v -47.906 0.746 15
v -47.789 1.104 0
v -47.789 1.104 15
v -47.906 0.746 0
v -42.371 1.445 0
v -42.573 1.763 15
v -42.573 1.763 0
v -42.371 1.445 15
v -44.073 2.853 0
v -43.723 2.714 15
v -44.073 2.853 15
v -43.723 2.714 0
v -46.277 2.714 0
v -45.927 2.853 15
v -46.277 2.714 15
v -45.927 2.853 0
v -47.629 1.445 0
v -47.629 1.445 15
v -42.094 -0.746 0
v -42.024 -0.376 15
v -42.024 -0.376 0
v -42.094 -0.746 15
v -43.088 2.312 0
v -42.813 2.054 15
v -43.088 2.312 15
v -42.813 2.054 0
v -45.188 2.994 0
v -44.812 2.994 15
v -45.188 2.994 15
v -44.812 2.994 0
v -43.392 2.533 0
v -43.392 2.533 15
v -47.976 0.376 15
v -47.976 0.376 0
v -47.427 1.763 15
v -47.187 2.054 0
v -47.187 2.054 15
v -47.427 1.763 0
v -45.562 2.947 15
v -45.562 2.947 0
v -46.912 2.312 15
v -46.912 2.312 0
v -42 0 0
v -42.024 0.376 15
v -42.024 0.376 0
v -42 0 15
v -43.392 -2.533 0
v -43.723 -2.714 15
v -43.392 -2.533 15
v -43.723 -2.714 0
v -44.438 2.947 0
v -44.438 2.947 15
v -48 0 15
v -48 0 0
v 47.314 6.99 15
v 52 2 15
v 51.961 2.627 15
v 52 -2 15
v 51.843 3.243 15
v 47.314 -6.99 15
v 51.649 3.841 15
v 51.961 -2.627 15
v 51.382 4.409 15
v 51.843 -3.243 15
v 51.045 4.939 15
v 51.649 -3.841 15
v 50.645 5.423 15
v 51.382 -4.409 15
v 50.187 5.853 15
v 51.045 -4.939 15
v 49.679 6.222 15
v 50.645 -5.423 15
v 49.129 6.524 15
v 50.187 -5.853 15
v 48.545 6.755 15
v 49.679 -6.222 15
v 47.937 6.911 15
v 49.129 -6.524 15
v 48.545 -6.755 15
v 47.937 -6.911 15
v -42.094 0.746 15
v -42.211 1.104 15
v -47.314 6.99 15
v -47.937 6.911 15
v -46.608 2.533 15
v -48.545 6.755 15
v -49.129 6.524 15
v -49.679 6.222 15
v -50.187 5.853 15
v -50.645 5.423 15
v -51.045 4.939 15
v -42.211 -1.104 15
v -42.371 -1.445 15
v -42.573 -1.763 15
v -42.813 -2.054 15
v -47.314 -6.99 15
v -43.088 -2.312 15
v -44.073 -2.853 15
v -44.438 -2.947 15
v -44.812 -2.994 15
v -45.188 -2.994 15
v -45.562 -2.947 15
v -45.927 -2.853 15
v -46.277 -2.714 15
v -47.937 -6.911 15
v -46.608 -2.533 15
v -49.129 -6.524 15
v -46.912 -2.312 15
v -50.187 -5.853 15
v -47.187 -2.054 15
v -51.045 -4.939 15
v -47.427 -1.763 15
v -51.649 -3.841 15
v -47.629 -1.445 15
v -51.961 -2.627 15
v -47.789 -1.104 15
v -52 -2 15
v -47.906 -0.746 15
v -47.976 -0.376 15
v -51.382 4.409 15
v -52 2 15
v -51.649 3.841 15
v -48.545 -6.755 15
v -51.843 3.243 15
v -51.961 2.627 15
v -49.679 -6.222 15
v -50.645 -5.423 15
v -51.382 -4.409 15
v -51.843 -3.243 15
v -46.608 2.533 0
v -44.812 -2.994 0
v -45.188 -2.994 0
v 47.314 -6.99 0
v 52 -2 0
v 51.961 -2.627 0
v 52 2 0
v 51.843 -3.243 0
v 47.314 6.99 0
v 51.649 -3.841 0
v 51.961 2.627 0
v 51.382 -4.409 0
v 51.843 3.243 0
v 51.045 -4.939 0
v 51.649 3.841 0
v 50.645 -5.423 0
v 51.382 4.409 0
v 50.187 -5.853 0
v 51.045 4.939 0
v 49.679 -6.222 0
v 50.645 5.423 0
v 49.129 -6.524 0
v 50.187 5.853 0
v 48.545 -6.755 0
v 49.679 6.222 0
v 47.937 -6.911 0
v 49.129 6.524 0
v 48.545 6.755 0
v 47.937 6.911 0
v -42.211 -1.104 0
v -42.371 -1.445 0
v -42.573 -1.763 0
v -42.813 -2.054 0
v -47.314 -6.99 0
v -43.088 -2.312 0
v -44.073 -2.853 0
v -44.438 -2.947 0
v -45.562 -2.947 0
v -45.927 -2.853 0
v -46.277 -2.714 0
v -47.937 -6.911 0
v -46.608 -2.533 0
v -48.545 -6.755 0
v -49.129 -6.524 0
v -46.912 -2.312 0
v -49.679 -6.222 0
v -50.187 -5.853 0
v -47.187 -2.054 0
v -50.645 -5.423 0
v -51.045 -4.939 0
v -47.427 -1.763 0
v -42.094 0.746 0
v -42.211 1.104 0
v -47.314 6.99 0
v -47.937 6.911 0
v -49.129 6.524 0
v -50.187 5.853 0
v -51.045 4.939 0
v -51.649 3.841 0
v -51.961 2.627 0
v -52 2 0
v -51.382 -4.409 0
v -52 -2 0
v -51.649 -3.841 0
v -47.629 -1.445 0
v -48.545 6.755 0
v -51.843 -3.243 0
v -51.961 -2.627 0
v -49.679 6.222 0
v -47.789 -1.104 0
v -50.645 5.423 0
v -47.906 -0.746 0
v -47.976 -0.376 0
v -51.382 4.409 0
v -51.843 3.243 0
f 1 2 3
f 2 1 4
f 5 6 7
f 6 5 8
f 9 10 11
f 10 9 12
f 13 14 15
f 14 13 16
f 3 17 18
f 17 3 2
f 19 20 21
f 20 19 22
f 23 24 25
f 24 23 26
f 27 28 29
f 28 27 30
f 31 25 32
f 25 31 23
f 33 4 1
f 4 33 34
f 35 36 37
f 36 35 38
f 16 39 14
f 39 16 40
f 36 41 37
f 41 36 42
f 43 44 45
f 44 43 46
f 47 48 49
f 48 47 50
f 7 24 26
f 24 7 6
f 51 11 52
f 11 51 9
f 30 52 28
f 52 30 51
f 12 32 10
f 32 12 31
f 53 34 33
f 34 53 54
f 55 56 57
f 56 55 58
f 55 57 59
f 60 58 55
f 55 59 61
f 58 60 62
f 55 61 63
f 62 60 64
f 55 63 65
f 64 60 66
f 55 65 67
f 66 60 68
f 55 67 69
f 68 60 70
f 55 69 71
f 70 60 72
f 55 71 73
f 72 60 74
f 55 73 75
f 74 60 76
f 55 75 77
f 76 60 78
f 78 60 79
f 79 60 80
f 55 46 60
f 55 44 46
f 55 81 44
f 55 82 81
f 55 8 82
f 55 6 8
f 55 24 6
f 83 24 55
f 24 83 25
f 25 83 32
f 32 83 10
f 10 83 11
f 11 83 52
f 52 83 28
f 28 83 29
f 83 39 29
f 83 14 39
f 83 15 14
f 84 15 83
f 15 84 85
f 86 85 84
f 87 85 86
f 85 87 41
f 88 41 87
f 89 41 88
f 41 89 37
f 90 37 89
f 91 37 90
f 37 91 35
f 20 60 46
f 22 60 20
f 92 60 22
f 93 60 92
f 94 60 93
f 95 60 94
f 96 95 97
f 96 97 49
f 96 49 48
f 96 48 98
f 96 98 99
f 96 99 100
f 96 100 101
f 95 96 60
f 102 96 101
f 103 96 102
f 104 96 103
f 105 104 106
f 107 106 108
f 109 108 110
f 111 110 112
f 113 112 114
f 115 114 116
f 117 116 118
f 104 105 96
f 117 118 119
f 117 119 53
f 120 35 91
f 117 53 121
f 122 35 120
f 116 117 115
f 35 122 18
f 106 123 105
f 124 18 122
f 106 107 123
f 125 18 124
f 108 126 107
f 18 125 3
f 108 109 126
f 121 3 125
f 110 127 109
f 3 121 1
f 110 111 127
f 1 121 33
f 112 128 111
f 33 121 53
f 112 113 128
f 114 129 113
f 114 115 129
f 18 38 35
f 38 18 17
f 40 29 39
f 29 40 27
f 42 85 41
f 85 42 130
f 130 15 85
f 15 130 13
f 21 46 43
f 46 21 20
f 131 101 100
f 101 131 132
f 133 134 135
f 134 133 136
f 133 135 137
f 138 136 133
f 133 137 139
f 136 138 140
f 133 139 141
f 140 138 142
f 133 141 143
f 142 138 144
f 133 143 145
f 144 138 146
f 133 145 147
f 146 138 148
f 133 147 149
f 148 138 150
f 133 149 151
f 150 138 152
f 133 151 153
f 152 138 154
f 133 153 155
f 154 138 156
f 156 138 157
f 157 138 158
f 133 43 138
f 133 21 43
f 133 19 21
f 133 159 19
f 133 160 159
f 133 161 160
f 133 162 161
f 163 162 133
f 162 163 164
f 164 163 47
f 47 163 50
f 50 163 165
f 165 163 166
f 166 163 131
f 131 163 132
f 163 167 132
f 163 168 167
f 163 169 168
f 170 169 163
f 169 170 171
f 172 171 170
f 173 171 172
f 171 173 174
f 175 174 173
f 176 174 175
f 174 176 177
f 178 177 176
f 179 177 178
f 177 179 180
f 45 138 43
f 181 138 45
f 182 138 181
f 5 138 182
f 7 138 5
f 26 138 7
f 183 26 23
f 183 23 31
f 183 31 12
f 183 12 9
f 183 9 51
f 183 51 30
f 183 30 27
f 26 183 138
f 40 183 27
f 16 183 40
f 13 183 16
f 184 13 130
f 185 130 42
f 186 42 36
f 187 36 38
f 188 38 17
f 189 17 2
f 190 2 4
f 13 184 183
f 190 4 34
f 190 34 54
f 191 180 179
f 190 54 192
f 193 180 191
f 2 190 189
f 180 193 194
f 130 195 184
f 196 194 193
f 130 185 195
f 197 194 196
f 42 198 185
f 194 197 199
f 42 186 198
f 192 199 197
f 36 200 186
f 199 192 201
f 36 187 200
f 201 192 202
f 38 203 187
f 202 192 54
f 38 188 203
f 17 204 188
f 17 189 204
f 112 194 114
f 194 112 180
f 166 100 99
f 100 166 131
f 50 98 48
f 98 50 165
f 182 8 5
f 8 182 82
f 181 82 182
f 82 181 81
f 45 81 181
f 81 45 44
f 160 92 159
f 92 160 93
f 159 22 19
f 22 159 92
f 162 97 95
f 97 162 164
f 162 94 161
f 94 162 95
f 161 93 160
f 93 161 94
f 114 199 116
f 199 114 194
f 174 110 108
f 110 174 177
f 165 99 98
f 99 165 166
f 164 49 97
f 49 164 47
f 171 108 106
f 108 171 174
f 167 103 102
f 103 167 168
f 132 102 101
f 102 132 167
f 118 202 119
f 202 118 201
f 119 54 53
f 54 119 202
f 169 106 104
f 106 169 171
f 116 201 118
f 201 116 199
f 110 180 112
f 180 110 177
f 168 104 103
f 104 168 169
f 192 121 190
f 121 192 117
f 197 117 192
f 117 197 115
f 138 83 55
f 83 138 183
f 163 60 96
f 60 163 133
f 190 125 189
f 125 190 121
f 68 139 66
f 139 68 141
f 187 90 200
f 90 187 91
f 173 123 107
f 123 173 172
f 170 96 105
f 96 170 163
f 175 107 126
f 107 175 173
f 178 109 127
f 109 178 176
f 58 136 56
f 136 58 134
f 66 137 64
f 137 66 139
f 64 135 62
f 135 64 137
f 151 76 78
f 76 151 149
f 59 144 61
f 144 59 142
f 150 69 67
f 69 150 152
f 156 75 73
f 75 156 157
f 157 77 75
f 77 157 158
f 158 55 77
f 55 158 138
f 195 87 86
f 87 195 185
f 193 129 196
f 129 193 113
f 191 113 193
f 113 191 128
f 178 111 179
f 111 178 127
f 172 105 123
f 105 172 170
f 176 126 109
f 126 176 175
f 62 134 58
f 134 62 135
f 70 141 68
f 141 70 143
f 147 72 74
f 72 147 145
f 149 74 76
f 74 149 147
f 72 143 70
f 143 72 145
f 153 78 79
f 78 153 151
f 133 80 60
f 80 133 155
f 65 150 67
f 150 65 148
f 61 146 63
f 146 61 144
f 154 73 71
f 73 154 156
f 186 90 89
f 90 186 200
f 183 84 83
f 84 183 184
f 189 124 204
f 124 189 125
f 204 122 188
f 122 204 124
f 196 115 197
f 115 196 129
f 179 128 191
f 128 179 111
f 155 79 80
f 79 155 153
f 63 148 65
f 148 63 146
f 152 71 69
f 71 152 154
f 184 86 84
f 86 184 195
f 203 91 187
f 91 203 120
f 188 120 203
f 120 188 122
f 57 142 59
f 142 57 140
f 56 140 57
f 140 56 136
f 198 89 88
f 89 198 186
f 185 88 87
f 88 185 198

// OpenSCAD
$fn = 50;


difference() {
	union() {
		hull() {
			translate(v = [-47.0000000000, 2.0000000000, 0]) {
				cylinder(h = 15, r = 5);
			}
			translate(v = [47.0000000000, 2.0000000000, 0]) {
				cylinder(h = 15, r = 5);
			}
			translate(v = [-47.0000000000, -2.0000000000, 0]) {
				cylinder(h = 15, r = 5);
			}
			translate(v = [47.0000000000, -2.0000000000, 0]) {
				cylinder(h = 15, r = 5);
			}
		}
	}
	union() {
		translate(v = [-45.0000000000, 0.0000000000, 0]) {
			cylinder(h = 15, r = 3.0000000000);
		}
		translate(v = [-45.0000000000, 0.0000000000, 0]) {
			cylinder(h = 15, r = 1.5000000000);
		}
		translate(v = [-45.0000000000, 0.0000000000, 0]) {
			cylinder(h = 15, r = 1.5000000000);
		}
		translate(v = [-45.0000000000, 0.0000000000, 0]) {
			cylinder(h = 15, r = 1.5000000000);
		}
	}
}
